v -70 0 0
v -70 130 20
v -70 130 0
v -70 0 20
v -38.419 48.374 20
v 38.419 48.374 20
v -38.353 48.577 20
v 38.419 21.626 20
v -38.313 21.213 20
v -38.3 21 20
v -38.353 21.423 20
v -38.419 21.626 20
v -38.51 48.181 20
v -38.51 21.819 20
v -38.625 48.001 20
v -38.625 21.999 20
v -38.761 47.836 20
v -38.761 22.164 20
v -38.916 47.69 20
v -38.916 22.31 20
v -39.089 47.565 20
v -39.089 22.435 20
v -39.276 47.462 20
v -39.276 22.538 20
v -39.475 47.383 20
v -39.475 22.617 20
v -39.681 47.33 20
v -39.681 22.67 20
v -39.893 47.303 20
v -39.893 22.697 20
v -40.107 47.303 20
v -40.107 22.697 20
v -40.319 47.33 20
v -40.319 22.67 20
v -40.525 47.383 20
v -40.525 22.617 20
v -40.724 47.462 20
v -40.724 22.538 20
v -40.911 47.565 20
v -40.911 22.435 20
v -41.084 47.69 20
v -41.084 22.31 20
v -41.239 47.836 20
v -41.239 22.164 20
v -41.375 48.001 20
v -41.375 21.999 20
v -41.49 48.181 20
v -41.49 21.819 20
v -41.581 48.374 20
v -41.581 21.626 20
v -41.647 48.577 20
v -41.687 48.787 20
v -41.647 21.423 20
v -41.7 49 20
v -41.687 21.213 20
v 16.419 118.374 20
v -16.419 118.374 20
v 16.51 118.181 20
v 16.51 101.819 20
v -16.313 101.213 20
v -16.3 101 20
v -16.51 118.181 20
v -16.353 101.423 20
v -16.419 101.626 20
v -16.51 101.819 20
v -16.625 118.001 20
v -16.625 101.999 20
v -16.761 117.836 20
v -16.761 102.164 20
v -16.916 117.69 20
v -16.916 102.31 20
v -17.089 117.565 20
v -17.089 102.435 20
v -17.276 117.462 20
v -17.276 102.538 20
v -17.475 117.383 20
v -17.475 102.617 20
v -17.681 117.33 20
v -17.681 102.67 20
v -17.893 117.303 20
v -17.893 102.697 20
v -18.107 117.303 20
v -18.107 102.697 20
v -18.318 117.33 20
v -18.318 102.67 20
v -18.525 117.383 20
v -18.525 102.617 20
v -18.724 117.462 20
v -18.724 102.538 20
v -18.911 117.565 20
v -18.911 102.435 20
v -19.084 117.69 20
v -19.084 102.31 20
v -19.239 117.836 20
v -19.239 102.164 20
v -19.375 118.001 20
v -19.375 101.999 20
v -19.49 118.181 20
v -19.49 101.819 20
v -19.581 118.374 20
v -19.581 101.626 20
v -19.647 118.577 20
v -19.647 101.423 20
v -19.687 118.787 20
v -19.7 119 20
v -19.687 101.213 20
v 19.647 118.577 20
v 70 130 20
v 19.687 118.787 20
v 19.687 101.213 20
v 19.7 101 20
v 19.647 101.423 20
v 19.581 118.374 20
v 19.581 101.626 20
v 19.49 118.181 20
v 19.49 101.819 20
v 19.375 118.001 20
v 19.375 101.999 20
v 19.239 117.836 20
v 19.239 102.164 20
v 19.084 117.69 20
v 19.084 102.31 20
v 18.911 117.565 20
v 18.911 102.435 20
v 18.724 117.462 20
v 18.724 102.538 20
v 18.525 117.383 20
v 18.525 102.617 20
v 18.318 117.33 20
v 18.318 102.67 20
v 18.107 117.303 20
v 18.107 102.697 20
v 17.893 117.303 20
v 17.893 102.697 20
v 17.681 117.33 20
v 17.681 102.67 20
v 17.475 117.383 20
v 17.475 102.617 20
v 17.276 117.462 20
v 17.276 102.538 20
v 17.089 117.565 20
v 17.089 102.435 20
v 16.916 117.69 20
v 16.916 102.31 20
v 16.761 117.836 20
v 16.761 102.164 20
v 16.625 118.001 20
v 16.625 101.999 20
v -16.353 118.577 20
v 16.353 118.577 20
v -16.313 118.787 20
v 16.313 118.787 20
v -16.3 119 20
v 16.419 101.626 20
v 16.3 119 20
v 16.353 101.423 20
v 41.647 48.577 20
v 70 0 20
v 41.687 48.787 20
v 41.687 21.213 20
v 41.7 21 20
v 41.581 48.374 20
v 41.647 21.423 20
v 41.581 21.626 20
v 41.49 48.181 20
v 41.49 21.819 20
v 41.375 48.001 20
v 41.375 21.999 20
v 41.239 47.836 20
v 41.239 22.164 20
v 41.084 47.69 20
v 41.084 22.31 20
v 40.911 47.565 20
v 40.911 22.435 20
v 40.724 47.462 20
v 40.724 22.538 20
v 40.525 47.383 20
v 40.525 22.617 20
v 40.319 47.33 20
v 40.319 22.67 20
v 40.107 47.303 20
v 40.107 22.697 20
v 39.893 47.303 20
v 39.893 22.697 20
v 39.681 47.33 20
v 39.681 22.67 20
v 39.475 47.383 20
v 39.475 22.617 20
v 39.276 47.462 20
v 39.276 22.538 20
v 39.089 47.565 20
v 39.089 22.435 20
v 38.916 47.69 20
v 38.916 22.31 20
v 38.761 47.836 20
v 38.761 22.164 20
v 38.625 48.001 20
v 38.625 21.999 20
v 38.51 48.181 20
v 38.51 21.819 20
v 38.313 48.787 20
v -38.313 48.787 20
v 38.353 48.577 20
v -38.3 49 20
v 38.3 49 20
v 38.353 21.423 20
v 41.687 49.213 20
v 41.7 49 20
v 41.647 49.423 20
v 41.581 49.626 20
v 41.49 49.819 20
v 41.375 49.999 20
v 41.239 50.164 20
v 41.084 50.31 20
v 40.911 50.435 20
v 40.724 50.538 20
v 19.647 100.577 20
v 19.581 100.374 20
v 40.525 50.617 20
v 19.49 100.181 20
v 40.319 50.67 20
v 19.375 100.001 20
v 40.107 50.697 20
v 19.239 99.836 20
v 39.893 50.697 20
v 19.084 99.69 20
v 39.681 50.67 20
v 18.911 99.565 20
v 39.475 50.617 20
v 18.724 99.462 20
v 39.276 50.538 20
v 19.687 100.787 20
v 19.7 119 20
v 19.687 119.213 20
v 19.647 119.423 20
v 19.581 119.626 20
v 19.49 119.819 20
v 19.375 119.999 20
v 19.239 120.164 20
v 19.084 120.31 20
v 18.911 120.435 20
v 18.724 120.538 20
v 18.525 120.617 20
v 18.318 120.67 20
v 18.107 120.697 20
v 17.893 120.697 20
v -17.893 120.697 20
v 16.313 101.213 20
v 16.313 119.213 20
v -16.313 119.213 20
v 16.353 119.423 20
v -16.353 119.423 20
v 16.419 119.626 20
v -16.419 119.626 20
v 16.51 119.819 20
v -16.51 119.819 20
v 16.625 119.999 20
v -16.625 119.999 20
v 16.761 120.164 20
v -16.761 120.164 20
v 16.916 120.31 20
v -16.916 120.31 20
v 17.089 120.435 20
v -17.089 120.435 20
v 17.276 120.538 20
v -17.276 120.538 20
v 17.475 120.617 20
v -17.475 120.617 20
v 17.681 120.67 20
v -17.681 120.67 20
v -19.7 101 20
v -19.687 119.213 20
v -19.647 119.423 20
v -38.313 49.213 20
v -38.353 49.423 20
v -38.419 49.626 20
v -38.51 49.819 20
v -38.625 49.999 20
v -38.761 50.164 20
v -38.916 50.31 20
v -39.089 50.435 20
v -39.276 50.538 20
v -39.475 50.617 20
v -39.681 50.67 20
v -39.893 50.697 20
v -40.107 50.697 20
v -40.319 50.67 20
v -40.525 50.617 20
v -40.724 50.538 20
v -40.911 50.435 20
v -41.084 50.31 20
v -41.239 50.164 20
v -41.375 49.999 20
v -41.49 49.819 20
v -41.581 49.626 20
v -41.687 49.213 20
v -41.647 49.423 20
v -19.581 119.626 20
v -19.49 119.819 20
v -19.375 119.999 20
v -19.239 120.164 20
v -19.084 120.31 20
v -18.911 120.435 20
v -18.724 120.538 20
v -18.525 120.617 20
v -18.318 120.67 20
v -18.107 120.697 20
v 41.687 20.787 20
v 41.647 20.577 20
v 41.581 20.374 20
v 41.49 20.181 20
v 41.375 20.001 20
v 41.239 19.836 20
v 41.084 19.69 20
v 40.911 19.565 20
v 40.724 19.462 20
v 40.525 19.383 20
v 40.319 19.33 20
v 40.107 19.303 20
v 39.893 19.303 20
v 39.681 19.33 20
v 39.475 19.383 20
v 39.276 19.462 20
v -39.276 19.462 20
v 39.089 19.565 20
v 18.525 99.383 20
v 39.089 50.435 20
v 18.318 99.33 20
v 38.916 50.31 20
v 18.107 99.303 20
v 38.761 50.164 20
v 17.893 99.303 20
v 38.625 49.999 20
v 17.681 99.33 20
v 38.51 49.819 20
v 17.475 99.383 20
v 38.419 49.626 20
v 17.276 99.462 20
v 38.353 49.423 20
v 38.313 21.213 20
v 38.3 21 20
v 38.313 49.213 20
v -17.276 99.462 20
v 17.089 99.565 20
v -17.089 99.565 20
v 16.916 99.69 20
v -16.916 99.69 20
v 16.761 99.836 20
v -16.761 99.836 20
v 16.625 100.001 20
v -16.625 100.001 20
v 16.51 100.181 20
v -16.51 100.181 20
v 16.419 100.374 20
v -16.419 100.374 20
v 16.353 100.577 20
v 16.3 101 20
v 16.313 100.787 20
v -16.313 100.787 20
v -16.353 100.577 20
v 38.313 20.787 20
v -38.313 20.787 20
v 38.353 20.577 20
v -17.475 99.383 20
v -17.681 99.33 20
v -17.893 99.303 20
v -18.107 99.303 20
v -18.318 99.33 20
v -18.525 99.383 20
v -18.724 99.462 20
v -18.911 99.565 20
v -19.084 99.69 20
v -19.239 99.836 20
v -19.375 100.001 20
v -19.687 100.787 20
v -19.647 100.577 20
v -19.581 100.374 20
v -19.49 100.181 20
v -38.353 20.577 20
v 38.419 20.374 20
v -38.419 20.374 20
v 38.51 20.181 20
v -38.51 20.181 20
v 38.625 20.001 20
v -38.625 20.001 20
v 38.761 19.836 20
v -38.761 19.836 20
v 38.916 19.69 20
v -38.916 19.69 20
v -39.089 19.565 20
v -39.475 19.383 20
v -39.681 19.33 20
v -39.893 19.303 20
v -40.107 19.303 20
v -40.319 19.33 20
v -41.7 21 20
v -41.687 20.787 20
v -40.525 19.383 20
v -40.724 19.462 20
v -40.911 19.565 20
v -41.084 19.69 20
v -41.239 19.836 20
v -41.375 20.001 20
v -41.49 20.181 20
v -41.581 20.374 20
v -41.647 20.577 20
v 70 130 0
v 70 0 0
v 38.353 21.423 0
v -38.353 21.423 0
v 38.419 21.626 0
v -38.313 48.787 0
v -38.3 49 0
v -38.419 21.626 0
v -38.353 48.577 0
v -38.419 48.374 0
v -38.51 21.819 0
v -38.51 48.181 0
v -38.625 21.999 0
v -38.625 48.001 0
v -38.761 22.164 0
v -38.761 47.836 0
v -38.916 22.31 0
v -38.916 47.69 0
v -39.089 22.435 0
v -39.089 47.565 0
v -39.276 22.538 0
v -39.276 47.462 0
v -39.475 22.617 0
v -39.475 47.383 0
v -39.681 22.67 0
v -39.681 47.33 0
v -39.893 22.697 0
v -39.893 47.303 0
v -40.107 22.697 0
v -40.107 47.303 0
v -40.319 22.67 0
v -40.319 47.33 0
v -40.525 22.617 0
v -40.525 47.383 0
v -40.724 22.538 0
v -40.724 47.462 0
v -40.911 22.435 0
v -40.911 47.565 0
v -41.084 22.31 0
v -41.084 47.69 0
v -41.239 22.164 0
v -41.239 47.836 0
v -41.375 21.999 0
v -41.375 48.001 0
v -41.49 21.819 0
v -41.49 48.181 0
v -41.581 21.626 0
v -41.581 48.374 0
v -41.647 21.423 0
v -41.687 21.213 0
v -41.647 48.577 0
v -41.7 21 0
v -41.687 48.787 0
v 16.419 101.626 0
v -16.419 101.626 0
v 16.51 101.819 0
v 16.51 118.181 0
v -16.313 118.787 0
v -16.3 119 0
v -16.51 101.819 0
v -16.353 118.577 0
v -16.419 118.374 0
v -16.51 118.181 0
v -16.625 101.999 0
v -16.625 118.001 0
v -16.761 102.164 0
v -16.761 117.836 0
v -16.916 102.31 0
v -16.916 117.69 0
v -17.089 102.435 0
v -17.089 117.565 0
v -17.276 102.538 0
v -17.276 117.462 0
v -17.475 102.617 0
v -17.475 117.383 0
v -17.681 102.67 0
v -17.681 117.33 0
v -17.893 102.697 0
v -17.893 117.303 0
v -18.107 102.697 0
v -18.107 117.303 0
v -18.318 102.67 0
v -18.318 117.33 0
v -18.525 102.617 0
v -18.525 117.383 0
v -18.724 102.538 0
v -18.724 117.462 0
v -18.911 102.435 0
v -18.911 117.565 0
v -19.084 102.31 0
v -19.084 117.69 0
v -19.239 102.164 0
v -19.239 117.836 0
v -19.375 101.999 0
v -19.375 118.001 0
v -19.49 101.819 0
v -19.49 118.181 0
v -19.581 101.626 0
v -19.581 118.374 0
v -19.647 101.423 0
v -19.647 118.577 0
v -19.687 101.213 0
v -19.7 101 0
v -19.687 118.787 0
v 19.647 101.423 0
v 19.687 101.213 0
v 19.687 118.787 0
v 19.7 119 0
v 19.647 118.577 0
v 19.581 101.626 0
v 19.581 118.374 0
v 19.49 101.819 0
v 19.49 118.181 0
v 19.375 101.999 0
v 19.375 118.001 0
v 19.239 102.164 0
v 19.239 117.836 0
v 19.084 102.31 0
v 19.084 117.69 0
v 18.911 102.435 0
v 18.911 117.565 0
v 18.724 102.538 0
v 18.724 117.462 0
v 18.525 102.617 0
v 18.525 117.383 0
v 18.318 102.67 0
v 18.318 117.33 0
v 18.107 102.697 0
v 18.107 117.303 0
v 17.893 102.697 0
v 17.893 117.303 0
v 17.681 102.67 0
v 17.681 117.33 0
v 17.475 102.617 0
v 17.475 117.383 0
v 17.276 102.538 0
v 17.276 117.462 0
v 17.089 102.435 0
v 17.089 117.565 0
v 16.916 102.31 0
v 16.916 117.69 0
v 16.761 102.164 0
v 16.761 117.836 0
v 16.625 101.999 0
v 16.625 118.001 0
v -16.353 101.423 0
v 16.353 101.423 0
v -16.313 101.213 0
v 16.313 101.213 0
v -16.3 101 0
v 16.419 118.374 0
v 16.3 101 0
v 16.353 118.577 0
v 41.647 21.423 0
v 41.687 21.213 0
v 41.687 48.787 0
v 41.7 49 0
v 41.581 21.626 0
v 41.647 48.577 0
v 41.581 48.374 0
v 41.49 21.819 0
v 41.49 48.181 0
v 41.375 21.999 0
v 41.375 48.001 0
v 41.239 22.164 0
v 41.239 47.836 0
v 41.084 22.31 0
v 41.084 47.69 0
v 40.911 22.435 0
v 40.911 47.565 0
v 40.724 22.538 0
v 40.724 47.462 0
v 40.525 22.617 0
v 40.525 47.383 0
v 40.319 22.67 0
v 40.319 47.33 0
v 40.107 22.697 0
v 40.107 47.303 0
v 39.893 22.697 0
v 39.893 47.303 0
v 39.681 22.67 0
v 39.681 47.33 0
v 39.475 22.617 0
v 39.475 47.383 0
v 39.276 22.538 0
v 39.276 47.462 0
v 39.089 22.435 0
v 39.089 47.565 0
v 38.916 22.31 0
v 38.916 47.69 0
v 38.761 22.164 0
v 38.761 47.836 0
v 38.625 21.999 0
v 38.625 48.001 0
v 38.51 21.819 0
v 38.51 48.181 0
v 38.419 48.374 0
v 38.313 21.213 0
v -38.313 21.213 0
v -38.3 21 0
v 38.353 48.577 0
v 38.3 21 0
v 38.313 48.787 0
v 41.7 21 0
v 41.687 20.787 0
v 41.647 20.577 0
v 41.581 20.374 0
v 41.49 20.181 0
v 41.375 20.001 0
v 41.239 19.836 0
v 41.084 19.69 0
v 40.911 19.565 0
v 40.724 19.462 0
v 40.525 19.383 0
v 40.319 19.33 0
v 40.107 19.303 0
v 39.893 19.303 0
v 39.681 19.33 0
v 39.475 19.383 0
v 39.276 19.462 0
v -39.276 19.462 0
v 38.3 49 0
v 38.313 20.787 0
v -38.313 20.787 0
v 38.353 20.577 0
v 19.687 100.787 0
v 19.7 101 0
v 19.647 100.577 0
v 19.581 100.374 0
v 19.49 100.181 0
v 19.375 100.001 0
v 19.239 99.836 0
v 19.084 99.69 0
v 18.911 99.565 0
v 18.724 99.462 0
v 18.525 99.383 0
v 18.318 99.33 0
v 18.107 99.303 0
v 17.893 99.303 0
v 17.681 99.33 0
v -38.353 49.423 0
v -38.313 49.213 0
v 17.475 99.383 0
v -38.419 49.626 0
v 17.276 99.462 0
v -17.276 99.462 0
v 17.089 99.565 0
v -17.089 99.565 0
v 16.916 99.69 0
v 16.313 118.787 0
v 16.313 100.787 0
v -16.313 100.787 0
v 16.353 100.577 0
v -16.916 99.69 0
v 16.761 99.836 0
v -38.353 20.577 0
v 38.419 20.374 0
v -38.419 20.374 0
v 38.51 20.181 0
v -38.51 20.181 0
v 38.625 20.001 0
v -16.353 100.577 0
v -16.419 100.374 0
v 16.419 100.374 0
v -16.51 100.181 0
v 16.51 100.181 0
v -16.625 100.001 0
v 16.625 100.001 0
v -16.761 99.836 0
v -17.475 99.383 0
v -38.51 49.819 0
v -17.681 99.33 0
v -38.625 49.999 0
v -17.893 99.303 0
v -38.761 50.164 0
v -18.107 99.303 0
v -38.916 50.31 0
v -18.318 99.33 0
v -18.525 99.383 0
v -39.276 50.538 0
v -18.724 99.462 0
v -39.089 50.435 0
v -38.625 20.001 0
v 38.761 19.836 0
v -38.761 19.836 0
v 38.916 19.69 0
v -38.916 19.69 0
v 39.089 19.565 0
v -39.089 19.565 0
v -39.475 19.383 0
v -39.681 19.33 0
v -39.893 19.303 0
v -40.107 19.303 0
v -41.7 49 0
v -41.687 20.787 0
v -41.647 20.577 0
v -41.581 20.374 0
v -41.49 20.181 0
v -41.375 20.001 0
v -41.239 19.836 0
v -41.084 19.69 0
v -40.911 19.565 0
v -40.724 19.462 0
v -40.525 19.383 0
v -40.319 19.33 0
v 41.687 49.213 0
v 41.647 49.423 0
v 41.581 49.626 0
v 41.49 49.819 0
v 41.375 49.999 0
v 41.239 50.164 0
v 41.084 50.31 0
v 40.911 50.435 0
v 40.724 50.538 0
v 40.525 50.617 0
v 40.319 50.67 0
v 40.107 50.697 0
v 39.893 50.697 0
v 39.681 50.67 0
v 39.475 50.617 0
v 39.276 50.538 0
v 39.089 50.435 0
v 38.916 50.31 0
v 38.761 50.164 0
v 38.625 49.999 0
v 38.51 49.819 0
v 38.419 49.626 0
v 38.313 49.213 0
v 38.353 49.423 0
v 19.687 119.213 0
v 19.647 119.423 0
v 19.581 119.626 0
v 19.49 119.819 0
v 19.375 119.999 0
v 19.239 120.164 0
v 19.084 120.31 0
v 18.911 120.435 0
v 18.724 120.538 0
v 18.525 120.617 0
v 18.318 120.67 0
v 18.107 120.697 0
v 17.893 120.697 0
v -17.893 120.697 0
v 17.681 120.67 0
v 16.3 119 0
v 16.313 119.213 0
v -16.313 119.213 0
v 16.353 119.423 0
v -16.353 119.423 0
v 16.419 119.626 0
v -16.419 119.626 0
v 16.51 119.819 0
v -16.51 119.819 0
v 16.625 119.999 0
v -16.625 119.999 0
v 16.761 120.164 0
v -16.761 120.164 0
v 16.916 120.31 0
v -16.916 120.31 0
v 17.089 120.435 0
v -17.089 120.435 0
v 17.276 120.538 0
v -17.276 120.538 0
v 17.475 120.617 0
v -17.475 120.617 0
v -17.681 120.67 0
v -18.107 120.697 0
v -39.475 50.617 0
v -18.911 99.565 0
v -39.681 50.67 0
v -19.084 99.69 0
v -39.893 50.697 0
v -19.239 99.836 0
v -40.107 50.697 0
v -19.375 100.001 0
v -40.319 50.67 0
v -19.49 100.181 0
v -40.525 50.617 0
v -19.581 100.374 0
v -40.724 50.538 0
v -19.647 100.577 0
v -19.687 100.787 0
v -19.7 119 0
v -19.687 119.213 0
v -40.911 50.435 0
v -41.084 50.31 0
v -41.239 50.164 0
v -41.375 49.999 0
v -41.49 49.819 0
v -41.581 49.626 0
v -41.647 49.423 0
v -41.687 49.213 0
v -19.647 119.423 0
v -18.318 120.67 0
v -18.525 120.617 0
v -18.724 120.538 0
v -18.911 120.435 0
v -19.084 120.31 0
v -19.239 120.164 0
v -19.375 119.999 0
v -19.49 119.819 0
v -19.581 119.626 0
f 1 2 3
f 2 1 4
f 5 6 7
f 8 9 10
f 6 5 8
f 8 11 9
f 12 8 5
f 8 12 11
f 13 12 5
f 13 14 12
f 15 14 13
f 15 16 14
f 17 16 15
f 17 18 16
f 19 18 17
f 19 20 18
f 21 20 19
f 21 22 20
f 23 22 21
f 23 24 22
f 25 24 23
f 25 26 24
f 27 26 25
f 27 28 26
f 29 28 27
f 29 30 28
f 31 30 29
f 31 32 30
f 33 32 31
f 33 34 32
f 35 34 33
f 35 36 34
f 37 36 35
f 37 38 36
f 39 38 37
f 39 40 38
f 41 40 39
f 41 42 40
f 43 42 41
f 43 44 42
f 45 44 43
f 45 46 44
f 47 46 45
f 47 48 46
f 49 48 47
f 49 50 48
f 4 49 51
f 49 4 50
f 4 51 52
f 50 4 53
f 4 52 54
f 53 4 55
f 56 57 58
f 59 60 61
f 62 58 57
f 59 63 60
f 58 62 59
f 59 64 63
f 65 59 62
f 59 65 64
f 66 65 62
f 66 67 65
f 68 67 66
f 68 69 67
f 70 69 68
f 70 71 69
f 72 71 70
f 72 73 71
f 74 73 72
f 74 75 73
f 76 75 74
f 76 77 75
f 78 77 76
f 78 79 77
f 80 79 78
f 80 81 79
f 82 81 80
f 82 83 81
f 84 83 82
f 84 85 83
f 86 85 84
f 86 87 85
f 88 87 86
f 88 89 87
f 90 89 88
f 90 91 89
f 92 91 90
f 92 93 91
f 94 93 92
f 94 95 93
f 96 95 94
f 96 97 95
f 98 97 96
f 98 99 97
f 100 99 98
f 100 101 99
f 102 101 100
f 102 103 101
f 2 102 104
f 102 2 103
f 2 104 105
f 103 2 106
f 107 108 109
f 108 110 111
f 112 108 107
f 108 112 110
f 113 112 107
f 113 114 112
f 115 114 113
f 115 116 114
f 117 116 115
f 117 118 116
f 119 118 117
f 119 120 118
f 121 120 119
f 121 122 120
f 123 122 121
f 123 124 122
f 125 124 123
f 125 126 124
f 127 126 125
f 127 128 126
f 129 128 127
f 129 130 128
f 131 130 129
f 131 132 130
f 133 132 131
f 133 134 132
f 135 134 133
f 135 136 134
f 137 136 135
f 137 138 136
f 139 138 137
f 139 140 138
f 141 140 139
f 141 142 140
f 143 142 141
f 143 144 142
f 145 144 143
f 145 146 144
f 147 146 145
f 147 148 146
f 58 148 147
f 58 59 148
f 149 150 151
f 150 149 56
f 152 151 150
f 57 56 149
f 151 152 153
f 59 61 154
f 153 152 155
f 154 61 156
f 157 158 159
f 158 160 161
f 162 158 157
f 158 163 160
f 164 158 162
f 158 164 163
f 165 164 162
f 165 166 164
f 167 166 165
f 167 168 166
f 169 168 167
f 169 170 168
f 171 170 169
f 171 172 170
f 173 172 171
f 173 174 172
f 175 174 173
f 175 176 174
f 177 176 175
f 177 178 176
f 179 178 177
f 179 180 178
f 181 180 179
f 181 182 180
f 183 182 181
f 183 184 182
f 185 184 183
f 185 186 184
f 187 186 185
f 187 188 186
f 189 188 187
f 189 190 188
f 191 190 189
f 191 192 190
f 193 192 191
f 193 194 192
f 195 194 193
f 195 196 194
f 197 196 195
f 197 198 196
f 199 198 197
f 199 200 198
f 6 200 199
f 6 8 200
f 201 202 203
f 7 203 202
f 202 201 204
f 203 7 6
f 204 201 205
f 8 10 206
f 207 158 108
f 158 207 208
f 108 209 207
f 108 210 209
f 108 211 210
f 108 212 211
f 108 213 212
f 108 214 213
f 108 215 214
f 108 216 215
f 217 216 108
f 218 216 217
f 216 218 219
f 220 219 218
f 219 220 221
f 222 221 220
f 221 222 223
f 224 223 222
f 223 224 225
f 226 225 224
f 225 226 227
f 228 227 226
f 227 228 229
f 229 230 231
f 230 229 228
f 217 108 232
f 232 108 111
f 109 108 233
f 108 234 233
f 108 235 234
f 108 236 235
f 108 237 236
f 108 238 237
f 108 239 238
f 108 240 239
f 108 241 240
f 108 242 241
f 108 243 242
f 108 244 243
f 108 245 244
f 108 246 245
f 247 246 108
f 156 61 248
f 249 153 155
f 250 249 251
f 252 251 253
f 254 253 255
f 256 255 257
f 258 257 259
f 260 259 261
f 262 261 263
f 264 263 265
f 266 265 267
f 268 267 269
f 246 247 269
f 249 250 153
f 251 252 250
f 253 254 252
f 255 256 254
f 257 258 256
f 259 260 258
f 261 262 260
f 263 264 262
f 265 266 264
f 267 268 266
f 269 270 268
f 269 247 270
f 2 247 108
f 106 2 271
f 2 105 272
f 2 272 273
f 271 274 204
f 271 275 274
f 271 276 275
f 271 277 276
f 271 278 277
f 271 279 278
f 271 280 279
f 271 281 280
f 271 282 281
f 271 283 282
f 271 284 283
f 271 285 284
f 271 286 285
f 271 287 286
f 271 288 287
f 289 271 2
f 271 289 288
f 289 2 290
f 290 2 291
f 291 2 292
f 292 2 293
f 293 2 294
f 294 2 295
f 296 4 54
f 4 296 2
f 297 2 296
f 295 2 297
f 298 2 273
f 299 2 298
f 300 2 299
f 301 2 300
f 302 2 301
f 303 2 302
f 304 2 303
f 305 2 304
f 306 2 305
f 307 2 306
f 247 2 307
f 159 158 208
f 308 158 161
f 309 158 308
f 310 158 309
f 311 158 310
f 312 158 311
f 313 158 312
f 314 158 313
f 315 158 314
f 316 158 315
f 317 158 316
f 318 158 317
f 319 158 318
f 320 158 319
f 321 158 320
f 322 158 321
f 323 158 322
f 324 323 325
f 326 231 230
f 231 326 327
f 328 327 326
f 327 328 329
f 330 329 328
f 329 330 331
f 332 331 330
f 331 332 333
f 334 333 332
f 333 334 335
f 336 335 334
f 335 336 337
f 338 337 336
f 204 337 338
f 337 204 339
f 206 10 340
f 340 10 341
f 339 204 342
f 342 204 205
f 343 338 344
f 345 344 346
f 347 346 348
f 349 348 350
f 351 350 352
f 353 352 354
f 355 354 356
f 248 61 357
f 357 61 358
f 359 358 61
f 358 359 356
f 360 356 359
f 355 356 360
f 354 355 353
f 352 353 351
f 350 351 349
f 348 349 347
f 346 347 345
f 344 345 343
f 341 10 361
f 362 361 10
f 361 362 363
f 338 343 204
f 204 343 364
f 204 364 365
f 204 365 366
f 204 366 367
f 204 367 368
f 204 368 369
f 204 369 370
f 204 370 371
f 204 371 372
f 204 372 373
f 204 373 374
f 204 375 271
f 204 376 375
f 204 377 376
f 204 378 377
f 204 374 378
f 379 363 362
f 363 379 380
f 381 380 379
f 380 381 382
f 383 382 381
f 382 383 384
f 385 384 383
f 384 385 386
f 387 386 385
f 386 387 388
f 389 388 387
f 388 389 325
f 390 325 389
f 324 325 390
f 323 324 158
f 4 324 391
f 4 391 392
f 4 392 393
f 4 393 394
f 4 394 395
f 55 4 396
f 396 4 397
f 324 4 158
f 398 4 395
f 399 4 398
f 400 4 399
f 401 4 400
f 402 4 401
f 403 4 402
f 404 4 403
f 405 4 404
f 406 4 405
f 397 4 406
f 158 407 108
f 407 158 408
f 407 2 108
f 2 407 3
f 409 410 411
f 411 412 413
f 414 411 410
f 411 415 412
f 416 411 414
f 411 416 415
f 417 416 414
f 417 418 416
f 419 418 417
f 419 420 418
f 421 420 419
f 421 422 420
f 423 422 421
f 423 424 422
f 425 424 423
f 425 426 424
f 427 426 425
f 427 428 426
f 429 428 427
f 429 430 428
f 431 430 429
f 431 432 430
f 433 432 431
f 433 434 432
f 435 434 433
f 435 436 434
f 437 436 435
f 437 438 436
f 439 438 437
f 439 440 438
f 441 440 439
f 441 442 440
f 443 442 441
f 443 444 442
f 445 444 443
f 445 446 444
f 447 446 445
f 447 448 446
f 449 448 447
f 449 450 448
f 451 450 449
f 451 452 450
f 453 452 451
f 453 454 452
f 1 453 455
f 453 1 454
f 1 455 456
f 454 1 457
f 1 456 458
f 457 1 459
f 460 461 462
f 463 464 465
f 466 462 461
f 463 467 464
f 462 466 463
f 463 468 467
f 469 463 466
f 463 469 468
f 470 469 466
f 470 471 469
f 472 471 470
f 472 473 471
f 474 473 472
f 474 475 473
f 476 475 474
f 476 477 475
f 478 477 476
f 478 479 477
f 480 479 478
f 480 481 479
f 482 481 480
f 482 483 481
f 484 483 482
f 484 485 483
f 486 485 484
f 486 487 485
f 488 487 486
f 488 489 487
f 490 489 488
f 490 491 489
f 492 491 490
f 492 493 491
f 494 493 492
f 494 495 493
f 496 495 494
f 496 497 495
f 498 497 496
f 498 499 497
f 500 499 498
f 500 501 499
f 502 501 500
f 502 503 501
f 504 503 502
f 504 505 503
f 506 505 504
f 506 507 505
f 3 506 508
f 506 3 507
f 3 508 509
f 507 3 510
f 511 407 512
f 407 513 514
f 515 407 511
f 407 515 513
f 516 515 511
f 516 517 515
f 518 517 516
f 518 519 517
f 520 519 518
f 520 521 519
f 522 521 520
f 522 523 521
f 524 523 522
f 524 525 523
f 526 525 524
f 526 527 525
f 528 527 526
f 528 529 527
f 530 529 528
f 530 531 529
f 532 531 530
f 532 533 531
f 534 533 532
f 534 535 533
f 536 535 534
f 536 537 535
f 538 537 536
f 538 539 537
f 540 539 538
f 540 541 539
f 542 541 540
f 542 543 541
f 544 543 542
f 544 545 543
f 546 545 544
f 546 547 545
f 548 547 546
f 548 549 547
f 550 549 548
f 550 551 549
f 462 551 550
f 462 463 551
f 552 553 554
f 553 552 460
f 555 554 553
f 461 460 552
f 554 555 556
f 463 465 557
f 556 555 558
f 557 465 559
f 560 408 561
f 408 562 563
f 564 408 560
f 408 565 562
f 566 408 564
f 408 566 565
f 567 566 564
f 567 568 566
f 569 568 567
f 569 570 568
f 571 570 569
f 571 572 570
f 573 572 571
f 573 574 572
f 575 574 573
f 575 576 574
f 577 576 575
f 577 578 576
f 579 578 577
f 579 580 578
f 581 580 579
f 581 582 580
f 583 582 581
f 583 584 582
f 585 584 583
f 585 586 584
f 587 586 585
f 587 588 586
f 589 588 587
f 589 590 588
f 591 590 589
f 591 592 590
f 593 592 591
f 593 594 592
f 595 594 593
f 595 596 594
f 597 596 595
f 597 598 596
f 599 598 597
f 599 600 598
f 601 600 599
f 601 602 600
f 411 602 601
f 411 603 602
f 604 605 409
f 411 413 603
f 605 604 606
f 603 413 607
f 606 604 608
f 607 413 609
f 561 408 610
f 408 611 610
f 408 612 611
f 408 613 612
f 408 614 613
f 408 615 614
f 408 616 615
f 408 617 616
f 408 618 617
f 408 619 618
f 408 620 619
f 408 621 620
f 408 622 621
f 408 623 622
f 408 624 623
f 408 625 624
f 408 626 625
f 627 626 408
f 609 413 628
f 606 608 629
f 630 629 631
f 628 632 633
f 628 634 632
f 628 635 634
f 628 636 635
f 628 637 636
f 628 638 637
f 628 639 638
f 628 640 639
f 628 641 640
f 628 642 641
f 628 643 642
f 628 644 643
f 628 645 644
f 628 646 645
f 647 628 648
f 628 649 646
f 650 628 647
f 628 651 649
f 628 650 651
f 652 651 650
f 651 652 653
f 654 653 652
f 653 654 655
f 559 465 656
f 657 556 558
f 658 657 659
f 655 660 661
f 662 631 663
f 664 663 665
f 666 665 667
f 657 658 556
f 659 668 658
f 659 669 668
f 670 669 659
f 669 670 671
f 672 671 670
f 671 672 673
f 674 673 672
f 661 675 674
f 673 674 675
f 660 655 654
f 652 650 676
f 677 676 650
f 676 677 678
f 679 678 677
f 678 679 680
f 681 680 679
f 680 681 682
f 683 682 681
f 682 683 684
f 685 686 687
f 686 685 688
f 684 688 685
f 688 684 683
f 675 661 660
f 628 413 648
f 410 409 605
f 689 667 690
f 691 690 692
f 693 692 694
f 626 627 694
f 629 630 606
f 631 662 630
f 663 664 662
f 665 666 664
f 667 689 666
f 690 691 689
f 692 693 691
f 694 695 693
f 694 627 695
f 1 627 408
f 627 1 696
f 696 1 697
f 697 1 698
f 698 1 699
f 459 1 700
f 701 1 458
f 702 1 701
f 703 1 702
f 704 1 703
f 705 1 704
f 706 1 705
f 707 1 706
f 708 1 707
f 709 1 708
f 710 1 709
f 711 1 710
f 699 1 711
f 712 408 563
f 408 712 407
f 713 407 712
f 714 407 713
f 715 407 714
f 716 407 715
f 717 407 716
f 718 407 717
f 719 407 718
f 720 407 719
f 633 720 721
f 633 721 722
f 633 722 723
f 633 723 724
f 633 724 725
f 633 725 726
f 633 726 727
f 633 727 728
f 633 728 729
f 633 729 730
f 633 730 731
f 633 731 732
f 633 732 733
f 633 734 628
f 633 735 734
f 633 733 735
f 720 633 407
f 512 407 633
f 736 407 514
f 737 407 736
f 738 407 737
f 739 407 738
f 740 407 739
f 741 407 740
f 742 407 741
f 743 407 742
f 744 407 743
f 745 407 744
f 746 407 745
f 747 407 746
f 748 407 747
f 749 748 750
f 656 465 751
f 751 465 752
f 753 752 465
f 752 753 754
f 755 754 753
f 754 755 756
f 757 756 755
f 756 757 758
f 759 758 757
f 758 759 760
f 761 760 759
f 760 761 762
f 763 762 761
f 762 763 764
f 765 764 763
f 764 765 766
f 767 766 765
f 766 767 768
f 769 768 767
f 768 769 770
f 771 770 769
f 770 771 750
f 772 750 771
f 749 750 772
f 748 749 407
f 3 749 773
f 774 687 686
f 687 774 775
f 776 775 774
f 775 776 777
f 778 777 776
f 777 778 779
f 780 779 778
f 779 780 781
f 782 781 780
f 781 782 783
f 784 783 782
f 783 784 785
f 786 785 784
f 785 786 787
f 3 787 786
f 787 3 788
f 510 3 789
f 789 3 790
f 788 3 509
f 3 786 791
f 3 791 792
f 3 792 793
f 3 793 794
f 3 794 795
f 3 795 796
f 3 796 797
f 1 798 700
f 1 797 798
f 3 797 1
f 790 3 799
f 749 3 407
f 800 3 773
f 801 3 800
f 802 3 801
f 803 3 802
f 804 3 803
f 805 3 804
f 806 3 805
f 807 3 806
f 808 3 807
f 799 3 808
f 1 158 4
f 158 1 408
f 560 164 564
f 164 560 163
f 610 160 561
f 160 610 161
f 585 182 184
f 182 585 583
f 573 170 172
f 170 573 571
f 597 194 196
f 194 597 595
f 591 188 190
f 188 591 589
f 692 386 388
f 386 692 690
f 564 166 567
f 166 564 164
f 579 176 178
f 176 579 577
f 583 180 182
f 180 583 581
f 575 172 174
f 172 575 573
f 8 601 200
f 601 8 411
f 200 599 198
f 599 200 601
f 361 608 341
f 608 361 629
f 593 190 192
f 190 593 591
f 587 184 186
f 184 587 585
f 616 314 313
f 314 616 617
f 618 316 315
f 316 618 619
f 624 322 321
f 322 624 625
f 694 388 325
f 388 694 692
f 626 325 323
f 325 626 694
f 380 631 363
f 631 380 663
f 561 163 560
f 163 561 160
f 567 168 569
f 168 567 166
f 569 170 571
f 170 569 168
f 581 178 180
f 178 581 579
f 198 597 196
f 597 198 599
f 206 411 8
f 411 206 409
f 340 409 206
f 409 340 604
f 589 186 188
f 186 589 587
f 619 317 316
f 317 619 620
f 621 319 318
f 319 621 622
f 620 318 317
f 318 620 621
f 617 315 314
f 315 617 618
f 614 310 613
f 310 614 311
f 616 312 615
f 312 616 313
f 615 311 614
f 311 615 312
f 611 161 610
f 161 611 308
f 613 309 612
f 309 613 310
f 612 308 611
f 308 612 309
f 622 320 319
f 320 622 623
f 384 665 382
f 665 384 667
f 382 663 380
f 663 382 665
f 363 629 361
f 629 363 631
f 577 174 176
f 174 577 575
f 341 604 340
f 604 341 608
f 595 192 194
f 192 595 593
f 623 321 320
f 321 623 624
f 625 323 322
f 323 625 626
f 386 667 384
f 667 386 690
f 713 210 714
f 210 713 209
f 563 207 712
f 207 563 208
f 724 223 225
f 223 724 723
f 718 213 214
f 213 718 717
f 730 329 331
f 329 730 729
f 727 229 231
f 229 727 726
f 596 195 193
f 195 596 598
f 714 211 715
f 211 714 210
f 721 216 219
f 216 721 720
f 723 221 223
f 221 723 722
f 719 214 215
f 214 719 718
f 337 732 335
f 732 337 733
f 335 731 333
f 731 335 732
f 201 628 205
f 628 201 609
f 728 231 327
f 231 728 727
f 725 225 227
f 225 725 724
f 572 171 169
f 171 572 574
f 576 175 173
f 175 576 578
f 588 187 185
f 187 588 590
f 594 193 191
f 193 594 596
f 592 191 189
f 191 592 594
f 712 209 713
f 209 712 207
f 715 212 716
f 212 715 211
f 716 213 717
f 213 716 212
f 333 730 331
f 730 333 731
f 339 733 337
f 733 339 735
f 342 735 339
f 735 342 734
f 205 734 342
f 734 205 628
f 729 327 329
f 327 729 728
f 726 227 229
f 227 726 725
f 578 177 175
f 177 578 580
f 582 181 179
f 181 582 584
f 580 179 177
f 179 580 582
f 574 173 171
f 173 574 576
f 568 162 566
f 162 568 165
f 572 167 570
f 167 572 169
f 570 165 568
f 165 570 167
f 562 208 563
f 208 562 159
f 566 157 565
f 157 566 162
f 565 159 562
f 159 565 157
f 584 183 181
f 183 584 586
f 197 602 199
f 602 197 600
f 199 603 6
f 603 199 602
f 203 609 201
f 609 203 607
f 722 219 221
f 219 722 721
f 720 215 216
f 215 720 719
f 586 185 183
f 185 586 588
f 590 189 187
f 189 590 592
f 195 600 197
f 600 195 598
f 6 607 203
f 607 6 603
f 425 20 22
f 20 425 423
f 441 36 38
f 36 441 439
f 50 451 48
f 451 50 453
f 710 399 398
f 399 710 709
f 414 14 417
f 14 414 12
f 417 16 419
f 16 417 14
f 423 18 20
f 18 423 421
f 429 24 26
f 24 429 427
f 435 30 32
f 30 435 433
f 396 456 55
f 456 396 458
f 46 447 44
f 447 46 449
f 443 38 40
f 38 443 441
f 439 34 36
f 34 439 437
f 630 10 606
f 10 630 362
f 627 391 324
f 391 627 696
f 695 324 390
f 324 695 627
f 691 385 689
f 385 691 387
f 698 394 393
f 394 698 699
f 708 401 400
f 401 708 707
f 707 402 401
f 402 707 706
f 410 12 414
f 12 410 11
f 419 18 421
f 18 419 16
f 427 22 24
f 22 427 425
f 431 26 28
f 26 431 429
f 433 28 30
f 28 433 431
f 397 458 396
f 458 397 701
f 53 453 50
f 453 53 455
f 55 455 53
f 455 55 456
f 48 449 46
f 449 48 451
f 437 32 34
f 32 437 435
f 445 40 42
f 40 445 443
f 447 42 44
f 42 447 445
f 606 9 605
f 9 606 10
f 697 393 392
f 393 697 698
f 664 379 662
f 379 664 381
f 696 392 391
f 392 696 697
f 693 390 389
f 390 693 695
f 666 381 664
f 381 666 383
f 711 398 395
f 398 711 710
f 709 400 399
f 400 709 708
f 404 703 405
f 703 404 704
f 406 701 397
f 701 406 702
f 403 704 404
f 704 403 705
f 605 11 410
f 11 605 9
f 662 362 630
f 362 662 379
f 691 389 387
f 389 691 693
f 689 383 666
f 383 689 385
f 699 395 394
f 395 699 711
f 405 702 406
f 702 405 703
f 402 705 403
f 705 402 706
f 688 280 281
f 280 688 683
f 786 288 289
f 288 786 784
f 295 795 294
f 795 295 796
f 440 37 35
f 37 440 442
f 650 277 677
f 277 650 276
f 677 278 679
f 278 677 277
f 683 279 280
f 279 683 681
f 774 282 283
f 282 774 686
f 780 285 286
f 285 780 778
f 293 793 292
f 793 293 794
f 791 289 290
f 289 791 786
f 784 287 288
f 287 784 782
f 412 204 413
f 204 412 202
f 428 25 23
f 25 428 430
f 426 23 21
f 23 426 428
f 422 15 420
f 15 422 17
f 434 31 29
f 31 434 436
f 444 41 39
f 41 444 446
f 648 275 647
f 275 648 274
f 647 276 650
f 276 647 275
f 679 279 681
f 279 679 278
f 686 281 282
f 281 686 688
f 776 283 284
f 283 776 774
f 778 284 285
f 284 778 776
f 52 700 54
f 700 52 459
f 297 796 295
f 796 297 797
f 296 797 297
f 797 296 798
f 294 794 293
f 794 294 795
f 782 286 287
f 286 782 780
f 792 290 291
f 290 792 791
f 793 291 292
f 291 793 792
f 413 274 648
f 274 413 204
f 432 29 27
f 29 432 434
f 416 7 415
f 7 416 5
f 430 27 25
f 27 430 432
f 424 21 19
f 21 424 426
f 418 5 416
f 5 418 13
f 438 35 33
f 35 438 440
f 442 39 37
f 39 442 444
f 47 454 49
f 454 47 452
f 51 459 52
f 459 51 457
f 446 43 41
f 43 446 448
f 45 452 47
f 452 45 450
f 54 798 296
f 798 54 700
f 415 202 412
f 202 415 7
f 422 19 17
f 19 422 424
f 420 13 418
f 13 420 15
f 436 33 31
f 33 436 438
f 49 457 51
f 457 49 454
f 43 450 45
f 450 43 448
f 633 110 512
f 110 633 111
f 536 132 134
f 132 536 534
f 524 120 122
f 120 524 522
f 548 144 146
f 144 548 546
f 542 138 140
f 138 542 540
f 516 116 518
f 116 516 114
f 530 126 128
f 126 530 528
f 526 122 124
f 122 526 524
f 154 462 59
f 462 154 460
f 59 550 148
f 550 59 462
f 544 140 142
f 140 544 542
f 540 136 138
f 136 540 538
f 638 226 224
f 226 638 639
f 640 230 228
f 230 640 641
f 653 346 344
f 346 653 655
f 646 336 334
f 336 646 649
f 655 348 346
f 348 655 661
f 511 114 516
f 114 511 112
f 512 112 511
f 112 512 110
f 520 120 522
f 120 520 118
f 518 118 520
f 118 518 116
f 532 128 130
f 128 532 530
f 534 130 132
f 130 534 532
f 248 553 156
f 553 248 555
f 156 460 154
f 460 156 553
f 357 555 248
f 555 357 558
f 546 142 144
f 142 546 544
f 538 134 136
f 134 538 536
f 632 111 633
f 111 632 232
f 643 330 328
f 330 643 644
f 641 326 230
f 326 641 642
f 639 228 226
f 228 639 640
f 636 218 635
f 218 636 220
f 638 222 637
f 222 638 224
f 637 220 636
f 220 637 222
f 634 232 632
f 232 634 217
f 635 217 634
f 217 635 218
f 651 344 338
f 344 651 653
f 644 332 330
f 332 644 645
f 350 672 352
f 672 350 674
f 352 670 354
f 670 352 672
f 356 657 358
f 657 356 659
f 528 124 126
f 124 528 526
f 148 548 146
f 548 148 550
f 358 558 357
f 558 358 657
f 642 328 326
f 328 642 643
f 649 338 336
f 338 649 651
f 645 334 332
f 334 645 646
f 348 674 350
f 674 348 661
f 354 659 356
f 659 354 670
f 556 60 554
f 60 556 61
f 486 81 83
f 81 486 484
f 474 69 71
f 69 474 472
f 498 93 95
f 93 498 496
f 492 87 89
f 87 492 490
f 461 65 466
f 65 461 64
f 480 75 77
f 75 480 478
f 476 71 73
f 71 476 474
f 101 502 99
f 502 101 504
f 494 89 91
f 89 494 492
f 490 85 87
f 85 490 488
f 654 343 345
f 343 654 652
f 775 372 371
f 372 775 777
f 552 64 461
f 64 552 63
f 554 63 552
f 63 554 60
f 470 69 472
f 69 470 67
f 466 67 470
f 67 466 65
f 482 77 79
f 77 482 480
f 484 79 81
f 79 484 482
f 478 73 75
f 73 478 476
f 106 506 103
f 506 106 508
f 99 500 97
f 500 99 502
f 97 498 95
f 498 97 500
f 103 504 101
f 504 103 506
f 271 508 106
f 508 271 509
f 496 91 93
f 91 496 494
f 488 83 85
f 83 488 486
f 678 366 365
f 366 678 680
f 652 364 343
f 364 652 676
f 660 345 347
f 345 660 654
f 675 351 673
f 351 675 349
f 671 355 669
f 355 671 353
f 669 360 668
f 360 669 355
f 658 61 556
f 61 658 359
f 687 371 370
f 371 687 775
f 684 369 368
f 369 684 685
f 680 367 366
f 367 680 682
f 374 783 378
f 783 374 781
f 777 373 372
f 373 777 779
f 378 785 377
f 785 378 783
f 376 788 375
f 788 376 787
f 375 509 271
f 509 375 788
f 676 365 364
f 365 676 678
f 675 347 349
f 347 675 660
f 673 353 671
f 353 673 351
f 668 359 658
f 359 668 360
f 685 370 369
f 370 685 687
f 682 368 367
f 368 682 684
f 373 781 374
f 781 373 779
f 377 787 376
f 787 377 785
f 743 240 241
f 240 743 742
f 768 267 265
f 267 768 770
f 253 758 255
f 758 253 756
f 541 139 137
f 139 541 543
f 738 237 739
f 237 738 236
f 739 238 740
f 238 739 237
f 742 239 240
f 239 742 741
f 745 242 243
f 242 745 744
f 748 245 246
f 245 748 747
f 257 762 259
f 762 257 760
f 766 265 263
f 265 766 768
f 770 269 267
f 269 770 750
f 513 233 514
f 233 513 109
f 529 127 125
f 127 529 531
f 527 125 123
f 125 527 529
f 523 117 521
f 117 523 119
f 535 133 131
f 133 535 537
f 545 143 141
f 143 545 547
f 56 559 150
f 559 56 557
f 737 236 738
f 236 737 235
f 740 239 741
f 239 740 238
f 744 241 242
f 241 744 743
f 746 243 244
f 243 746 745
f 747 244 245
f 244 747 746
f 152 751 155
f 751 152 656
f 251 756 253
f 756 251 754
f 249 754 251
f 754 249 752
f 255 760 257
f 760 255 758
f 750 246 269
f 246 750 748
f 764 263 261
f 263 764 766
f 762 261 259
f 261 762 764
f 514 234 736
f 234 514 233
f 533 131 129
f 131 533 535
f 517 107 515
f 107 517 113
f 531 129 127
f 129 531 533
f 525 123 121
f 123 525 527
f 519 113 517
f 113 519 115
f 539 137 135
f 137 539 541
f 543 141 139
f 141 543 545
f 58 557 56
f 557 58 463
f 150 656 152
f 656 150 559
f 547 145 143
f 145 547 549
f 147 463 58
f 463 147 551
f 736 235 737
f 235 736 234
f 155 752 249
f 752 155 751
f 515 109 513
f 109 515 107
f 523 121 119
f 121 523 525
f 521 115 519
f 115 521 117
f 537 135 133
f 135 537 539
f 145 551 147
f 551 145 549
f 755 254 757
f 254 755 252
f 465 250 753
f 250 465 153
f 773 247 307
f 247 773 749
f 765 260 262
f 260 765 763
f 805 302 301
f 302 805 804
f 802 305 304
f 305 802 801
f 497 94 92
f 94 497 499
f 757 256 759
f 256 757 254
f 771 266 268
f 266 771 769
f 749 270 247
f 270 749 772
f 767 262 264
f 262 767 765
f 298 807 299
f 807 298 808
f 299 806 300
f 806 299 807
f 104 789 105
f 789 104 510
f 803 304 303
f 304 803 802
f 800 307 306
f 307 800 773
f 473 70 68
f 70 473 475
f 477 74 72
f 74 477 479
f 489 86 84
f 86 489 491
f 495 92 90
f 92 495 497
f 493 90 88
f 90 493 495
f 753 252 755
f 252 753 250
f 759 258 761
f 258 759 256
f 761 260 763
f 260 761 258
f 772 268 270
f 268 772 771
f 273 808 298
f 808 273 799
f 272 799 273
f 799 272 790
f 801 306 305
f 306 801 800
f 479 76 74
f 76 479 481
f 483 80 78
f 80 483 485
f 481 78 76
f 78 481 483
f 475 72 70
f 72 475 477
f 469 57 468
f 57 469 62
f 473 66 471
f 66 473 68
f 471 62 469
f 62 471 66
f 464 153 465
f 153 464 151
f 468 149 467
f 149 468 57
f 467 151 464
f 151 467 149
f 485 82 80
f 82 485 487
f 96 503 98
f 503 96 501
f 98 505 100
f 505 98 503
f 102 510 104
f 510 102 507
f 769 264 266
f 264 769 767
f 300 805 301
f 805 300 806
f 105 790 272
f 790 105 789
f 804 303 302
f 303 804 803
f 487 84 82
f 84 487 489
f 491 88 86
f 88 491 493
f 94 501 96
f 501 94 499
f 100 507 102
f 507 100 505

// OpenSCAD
// file: ../lib/nutsnbolts/data-access.scad
// Norm Nuts and Bolts - a OpenSCAD library
// Copyright (C) 2012  Johannes Kneer

// This program is free software: you can redistribute it and/or modify
// it under the terms of the GNU General Public License as published by
// the Free Software Foundation, either version 3 of the License, or
// (at your option) any later version.

// This program is distributed in the hope that it will be useful,
// but WITHOUT ANY WARRANTY; without even the implied warranty of
// MERCHANTABILITY or FITNESS FOR A PARTICULAR PURPOSE.  See the
// GNU General Public License for more details.

// You should have received a copy of the GNU General Public License
// along with this program.  If not, see <http://www.gnu.org/licenses/>.


// DATABASE ACCESS FUNCTIONS AND CONSTANTS



// == CONSTANTS ==

// screw table access keys
_NB_S_DESC            = 0;
_NB_S_FAMKEY			    = 1;
_NB_S_LENGTH          = 2;
_NB_S_NOTHREAD_LENGTH = 3;

_NB_F_DESC			      = 0;
_NB_F_OUTER_DIA       = 1;
_NB_F_INNER_DIA       = 2;
_NB_F_LEAD            = 3;
_NB_F_KEY             = 4;
_NB_F_KEY_DEPTH       = 5;
_NB_F_HEAD_HEIGHT     = 6;
_NB_F_HEAD_DIA        = 7;
_NB_F_NUT_KEY         = 8;
_NB_F_NUT_HEIGHT      = 9;
_NB_F_PITCH_FINE      = 10;
_NB_F_PITCH_MEDIUM    = 11;
_NB_F_PITCH_COARSE    = 12;


// == FUNCTIONS ==

// _get_screw("descriptor")   with descriptor = M8x25
//   find the line for a general object in the data matrix

function _get_screw(n) = data_screw[search([n], data_screw)[0]];
function _get_screw_fam(n) = data_screw_fam[search([_get_screw(n)[_NB_S_FAMKEY]], data_screw_fam)[0]];

function _get_fam(n) = data_screw_fam[search([n], data_screw_fam)[0]];


// _get_XXXXX("descriptor") functions
// find a single property in the database

function _get_desc(n)        = _get_screw(n)[_NB_S_DESC];
function _get_famkey(n)         = _get_screw(n)[_NB_S_FAMKEY];
function _get_length(n)      = _get_screw(n)[_NB_S_LENGTH];
function _get_nt_length(n)   = _get_screw(n)[_NB_S_NOTHREAD_LENGTH];

function _get_outer_dia(n)   = _get_screw_fam(n)[_NB_F_OUTER_DIA];
function _get_inner_dia(n)   = _get_screw_fam(n)[_NB_F_INNER_DIA];
function _get_lead(n)        = _get_screw_fam(n)[_NB_F_LEAD];
function _get_head_height(n) = _get_screw_fam(n)[_NB_F_HEAD_HEIGHT];
function _get_head_dia(n)    = _get_screw_fam(n)[_NB_F_HEAD_DIA];
function _get_nut_key(n)     = _get_screw_fam(n)[_NB_F_NUT_KEY];
function _get_nut_height(n)  = _get_screw_fam(n)[_NB_F_NUT_HEIGHT];
function _get_fine_pitch(n)  = _get_screw_fam(n)[_NB_F_PITCH_FINE];
function _get_medium_pitch(n)  = _get_screw_fam(n)[_NB_F_PITCH_MEDIUM];
function _get_coarse_pitch(n)  = _get_screw_fam(n)[_NB_F_PITCH_COARSE];
// file: ../globals.scad
// Global variables

$fn = 50;
clearance = 0.4; // Nozzle width
// main file
include <../globals.scad>
include <../lib/nutsnbolts/cyl_head_bolt.scad>;

module z_support()
{
    difference(){
        translate([-70,0,0])cube([140,130,20]);
        
        translate([40,21,30])hole_through("M3",l=40, cld=clearance);
        translate([40,49,30])hole_through("M3",l=40, cld=clearance);
        
        translate([-40,21,30])hole_through("M3",l=40, cld=clearance);
        translate([-40,49,30])hole_through("M3",l=40, cld=clearance);
        
        translate([18,101,30])hole_through("M3",l=40, cld=clearance);
        translate([-18,101,30])hole_through("M3",l=40, cld=clearance);
        
        translate([18,119,30])hole_through("M3",l=40, cld=clearance);
        translate([-18,119,30])hole_through("M3",l=40, cld=clearance);
    }   
}

z_support();
